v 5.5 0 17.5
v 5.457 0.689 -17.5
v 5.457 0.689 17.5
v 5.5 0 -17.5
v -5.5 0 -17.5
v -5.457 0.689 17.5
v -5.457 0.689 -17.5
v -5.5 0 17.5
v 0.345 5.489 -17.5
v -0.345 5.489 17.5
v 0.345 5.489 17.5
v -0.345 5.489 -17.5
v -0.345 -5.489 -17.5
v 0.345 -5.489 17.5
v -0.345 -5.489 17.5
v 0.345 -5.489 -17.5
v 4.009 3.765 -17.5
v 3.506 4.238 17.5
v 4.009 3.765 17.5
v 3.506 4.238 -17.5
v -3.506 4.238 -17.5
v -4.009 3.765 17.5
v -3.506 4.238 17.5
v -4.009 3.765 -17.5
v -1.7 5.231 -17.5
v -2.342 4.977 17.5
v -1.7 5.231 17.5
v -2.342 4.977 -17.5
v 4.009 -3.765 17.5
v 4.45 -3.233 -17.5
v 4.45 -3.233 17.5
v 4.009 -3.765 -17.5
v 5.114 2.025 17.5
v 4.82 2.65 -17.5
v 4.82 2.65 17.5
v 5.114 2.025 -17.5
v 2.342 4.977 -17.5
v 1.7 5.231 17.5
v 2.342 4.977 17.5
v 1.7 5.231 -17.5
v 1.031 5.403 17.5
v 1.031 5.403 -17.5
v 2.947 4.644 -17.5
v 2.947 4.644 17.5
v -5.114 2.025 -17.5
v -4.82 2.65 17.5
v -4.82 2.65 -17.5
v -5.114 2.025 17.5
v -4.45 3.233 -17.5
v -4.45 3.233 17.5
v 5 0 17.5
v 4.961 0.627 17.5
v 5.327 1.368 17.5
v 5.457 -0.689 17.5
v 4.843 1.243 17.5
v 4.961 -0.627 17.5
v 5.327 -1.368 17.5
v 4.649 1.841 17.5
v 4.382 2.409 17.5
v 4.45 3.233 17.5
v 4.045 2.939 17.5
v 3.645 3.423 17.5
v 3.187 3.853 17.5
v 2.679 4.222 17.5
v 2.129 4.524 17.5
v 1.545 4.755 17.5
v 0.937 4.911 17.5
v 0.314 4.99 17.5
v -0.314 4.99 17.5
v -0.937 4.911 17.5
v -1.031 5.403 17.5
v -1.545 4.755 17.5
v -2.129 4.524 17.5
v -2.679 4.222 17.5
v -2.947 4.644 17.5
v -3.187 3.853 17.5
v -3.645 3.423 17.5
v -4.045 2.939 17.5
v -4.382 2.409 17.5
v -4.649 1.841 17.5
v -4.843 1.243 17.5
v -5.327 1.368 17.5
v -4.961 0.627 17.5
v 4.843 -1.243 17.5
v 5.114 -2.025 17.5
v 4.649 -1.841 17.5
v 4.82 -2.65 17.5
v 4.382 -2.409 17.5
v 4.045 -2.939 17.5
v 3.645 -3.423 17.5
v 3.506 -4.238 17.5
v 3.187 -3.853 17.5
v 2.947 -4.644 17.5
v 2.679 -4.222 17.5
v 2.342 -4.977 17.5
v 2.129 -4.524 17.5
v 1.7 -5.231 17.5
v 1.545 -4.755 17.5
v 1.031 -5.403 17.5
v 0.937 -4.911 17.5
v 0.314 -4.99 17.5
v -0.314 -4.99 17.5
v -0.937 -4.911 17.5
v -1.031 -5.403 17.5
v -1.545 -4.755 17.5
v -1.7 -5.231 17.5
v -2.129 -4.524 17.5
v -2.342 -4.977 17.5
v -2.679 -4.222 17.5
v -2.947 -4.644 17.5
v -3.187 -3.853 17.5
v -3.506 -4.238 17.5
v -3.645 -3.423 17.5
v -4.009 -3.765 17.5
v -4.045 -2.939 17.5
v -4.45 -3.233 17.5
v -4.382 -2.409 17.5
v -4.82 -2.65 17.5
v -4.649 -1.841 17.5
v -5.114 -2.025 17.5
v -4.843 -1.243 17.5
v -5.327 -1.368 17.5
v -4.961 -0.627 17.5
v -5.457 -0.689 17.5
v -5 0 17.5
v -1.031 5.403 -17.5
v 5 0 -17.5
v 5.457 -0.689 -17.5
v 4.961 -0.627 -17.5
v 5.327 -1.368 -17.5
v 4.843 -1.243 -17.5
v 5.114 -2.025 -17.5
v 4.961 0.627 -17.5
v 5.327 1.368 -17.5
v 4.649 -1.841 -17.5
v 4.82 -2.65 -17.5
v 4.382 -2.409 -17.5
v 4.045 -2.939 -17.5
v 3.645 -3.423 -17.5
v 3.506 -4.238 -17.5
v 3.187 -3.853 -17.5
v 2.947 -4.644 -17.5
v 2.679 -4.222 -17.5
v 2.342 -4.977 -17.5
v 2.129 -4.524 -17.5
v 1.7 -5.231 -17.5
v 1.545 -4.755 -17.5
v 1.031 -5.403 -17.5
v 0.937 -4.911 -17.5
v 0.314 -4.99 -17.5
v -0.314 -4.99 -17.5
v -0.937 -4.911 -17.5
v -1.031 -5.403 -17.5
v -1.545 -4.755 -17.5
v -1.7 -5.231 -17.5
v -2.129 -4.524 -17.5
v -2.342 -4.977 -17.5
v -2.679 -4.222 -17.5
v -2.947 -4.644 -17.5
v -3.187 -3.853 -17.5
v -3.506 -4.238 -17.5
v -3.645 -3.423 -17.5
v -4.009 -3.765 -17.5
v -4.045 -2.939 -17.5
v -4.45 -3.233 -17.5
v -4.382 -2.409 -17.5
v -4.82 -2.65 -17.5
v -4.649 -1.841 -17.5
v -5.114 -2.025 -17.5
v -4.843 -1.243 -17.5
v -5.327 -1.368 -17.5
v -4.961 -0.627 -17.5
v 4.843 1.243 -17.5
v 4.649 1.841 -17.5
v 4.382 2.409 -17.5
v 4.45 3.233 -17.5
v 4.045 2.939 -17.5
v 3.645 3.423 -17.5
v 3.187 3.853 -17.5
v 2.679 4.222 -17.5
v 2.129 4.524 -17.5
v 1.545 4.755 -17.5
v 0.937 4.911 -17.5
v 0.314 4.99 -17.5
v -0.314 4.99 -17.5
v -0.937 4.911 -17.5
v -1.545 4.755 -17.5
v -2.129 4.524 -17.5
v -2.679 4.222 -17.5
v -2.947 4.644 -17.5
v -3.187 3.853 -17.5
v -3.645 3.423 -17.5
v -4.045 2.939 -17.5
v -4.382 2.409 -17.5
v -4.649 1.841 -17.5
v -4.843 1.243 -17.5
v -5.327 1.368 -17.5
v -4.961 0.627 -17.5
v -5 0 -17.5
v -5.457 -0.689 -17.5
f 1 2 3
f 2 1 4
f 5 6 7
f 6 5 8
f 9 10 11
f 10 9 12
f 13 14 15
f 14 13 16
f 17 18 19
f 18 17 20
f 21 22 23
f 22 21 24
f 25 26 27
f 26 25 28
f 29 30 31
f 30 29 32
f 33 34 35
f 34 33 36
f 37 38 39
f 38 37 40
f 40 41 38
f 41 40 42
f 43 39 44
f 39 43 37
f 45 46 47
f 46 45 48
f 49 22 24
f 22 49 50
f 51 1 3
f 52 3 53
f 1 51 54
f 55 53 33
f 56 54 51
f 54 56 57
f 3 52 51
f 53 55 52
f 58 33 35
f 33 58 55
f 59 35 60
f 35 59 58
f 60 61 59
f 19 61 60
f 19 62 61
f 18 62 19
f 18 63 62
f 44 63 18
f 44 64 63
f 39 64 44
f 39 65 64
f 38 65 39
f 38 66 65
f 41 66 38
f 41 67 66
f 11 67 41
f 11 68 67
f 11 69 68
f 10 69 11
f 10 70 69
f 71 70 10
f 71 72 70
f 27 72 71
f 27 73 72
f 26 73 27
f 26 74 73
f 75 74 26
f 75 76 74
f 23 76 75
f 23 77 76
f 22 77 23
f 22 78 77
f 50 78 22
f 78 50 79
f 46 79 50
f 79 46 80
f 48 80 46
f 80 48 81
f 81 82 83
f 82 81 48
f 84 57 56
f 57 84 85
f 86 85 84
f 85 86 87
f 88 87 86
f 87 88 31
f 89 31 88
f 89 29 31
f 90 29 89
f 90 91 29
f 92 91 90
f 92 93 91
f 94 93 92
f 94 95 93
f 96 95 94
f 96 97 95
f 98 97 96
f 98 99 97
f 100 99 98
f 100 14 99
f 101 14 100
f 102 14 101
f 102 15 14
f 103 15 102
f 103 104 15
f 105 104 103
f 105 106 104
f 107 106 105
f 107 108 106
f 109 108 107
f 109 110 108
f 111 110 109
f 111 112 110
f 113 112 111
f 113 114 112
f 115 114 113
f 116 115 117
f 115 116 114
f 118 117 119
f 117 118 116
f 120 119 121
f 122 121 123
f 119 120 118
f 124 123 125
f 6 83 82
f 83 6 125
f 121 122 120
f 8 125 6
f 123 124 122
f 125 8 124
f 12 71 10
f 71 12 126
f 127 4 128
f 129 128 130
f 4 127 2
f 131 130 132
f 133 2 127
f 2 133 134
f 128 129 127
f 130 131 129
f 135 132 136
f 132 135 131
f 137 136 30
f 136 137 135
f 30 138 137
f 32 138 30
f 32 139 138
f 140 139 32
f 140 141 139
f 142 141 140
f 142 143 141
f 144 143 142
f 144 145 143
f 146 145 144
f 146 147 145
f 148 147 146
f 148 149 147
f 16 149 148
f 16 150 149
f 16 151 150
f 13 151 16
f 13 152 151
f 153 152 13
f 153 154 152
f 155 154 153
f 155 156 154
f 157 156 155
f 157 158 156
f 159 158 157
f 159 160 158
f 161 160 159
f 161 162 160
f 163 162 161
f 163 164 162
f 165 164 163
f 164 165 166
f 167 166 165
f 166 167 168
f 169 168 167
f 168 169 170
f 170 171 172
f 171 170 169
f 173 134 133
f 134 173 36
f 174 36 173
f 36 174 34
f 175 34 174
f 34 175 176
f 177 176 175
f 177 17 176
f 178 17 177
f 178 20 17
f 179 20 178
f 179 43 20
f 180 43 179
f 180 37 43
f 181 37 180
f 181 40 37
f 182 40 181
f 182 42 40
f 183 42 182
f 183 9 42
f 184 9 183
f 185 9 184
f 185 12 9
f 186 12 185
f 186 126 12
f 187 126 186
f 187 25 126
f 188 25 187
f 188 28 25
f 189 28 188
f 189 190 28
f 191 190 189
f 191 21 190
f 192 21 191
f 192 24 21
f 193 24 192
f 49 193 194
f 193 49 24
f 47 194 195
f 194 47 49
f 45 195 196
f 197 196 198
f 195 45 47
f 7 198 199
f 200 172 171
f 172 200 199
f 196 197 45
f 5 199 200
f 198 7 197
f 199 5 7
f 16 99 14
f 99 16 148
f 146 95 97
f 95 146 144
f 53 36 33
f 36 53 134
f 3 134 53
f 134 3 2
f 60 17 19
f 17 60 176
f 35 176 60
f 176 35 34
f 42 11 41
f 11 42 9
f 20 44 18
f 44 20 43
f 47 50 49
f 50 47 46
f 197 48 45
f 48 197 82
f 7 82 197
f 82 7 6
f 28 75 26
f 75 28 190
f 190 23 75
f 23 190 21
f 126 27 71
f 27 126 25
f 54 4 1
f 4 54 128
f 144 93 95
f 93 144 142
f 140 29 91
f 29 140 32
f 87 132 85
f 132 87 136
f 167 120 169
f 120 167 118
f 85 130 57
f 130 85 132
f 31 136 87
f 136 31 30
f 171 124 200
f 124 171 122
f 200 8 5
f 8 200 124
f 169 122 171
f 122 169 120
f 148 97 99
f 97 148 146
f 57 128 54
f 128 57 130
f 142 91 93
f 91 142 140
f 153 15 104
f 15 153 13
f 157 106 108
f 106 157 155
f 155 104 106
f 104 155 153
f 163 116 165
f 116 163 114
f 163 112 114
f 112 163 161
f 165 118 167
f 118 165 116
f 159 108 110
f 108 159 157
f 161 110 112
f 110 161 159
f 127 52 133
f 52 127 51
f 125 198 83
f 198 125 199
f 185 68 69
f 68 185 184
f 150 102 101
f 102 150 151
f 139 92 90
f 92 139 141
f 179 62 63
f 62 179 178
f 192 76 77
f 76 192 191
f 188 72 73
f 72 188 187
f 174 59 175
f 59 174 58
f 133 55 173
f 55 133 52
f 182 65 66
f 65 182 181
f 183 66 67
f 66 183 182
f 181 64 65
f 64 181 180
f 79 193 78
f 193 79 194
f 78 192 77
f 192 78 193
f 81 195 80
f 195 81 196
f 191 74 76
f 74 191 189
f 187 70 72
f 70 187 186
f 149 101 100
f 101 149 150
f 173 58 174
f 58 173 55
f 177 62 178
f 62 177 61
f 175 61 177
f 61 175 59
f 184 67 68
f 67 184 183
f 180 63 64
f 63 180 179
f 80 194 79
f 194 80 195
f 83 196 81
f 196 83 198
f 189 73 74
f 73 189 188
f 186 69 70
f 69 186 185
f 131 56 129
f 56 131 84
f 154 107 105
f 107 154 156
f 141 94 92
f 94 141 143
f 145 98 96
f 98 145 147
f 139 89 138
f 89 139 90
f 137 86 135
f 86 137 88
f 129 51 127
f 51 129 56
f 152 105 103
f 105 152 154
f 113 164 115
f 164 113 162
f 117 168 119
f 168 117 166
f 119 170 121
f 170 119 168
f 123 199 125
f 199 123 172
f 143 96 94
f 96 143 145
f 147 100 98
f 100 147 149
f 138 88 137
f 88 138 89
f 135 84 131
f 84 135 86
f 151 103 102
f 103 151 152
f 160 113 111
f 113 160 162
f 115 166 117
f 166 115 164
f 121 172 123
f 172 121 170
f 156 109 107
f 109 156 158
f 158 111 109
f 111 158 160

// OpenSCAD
$fn = 50;


difference() {
	union() {
		translate(v = [0, 0, -17.5000000000]) {
			cylinder(h = 35, r = 5.5000000000);
		}
	}
	union() {
		translate(v = [0, 0, -100.0000000000]) {
			cylinder(h = 200, r = 5);
		}
	}
}
